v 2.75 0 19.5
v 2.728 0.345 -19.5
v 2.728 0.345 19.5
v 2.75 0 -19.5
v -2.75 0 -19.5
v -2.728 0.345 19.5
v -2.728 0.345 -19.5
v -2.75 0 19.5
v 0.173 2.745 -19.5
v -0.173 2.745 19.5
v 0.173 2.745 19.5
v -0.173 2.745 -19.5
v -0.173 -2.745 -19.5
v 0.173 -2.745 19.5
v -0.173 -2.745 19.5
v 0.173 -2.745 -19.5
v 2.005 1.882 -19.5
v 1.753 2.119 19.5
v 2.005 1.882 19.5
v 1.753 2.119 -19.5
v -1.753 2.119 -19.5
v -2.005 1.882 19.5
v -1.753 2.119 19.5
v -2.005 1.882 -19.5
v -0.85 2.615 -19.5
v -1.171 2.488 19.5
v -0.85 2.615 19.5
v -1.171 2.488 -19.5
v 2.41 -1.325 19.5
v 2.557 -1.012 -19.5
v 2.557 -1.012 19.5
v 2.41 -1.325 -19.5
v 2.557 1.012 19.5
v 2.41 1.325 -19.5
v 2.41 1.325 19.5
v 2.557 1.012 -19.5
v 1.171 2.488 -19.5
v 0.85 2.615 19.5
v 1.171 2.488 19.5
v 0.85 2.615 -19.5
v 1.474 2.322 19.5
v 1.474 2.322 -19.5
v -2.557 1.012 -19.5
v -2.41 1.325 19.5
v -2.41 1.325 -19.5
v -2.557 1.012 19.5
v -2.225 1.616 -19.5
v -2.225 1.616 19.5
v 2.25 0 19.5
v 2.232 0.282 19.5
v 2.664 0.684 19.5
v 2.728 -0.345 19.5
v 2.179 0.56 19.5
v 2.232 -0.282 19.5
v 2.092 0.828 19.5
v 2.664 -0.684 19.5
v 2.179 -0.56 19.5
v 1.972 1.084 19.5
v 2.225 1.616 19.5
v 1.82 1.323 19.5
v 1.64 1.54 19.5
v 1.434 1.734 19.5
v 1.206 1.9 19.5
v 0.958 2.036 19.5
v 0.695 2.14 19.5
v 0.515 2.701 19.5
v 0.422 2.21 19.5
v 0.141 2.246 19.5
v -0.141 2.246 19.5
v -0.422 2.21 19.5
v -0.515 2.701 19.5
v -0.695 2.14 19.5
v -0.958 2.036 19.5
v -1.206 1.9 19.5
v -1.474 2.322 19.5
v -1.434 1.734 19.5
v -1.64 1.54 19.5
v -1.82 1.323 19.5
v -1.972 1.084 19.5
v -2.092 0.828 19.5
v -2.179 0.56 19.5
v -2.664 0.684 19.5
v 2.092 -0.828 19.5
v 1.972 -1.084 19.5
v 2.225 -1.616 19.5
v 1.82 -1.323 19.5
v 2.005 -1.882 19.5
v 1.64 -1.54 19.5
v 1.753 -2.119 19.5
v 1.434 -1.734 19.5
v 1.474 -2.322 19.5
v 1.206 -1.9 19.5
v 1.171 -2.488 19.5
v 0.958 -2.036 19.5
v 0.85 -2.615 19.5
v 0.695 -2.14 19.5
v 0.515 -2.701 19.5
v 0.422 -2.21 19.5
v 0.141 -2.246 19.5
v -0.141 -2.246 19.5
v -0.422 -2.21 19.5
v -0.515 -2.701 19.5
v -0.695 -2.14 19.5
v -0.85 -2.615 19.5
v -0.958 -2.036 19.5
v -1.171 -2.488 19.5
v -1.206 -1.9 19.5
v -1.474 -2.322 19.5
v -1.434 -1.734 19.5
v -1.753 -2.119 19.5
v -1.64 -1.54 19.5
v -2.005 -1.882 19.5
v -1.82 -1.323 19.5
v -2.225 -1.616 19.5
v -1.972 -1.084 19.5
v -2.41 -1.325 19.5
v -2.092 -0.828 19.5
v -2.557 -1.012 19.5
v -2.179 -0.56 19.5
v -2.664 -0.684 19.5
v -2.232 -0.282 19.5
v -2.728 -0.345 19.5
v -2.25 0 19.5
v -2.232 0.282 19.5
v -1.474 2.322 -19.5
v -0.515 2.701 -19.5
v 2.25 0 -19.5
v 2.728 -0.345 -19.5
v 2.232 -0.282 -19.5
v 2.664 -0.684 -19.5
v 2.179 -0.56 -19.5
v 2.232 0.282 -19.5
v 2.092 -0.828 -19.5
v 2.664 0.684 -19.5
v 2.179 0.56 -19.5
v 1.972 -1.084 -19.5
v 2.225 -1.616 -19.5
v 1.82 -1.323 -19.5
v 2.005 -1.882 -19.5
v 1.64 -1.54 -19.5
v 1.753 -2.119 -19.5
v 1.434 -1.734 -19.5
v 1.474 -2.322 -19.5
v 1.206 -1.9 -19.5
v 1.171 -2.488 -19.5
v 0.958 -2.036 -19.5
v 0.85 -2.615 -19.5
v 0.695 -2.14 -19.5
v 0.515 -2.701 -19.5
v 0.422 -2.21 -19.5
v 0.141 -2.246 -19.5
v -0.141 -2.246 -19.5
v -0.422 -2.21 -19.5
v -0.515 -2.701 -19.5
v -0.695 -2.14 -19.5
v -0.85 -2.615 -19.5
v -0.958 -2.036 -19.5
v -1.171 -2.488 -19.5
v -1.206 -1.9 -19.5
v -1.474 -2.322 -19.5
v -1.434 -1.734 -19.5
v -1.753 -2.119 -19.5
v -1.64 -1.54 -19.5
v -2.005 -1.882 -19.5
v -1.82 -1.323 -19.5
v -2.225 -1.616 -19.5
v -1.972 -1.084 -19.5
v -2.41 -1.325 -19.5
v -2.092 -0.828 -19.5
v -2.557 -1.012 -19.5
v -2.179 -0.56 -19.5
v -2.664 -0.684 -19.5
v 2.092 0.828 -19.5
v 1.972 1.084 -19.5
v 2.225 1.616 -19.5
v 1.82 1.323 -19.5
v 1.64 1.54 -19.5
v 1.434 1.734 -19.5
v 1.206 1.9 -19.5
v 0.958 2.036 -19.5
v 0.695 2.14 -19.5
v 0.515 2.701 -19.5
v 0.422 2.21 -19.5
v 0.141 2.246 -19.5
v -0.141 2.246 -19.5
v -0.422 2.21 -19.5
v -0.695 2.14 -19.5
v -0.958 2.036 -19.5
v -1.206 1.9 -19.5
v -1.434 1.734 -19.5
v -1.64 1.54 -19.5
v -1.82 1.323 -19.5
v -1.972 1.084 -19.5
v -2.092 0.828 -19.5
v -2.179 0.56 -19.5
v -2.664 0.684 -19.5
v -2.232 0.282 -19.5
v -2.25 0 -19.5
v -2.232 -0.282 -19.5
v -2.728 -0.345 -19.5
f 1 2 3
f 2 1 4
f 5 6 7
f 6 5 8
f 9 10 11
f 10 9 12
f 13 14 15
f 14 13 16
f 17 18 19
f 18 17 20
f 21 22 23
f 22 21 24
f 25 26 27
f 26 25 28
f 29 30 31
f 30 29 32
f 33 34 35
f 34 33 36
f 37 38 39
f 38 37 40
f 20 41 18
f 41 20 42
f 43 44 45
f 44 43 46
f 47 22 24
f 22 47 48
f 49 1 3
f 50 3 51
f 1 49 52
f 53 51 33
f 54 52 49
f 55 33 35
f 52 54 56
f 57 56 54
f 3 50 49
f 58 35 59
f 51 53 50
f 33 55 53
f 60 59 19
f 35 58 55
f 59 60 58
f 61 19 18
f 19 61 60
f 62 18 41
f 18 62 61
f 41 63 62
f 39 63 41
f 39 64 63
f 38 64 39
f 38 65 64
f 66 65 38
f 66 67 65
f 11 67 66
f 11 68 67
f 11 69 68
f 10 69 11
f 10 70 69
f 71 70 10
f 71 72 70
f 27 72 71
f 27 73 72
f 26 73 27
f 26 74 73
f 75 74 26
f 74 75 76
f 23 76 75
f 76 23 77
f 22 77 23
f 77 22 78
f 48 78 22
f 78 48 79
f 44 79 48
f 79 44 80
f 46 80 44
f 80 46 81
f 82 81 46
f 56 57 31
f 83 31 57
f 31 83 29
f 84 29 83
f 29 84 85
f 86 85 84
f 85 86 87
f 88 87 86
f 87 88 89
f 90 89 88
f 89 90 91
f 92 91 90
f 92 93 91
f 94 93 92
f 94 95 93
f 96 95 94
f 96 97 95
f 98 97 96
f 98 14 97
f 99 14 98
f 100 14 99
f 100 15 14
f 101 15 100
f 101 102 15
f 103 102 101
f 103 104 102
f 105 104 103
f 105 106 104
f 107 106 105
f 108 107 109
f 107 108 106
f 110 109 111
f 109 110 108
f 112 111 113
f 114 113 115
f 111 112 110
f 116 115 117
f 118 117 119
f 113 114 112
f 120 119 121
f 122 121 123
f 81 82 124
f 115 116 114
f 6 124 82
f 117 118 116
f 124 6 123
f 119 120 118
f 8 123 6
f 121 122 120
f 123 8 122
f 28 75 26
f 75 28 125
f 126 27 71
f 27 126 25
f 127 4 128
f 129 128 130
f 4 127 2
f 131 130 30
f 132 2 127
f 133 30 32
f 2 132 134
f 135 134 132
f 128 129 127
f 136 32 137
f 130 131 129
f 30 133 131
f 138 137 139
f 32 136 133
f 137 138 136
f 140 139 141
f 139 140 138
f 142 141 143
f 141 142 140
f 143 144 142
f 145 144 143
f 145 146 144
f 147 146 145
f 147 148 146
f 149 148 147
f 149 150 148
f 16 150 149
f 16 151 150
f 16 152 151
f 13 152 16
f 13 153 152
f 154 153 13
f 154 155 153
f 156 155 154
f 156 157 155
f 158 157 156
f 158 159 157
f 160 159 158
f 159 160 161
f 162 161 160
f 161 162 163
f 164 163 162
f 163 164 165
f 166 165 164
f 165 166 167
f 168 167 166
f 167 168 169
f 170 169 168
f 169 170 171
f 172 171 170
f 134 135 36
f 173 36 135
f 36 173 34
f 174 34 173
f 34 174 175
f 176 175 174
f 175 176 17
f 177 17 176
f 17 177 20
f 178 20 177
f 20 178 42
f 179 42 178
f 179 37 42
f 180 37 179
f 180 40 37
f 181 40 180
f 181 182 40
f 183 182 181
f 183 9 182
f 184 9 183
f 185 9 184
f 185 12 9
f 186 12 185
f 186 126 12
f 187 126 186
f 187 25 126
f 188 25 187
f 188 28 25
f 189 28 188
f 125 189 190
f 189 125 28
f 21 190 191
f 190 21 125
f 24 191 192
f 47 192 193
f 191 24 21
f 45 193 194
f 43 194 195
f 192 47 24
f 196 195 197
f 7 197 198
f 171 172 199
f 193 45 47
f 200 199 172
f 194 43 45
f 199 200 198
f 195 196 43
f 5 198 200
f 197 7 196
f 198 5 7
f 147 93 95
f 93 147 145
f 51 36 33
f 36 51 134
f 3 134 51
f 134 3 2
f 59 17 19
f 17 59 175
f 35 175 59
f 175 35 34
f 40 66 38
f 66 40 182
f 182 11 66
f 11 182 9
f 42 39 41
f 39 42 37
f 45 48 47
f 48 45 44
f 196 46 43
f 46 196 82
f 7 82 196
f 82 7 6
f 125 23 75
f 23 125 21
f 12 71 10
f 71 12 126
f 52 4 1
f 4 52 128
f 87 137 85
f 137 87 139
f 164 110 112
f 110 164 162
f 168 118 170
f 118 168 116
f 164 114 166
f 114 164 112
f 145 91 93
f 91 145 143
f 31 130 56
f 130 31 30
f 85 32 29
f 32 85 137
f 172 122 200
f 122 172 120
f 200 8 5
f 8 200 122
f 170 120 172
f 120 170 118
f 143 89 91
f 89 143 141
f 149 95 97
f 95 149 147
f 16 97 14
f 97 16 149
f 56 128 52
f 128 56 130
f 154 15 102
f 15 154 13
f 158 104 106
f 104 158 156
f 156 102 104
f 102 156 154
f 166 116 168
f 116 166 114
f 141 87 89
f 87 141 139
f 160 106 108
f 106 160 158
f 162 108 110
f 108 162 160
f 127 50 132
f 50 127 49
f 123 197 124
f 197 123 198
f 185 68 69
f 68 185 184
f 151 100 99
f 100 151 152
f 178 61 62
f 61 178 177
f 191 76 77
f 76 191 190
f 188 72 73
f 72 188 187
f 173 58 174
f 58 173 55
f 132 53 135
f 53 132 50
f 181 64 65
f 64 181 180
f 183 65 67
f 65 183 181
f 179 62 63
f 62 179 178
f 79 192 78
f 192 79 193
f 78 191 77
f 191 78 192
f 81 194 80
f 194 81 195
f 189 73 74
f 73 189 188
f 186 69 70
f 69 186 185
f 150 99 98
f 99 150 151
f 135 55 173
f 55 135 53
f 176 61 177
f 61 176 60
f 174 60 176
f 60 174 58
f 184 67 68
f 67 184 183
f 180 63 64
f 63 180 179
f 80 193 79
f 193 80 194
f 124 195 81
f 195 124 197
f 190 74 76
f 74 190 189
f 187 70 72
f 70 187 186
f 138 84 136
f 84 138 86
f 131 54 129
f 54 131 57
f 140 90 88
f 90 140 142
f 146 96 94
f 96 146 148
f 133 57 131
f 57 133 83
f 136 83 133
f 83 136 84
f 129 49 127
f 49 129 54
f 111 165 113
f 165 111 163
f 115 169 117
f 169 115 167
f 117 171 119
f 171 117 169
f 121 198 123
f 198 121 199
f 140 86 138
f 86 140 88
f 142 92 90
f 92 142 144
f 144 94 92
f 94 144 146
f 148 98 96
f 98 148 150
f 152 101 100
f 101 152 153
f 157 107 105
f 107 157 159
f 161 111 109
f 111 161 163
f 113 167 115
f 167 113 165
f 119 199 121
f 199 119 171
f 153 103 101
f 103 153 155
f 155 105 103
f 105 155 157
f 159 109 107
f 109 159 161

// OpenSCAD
$fn = 50;


difference() {
	union() {
		translate(v = [0, 0, -19.5000000000]) {
			cylinder(h = 39, r = 2.7500000000);
		}
	}
	union() {
		translate(v = [0, 0, -100.0000000000]) {
			cylinder(h = 200, r = 2.2500000000);
		}
	}
}
